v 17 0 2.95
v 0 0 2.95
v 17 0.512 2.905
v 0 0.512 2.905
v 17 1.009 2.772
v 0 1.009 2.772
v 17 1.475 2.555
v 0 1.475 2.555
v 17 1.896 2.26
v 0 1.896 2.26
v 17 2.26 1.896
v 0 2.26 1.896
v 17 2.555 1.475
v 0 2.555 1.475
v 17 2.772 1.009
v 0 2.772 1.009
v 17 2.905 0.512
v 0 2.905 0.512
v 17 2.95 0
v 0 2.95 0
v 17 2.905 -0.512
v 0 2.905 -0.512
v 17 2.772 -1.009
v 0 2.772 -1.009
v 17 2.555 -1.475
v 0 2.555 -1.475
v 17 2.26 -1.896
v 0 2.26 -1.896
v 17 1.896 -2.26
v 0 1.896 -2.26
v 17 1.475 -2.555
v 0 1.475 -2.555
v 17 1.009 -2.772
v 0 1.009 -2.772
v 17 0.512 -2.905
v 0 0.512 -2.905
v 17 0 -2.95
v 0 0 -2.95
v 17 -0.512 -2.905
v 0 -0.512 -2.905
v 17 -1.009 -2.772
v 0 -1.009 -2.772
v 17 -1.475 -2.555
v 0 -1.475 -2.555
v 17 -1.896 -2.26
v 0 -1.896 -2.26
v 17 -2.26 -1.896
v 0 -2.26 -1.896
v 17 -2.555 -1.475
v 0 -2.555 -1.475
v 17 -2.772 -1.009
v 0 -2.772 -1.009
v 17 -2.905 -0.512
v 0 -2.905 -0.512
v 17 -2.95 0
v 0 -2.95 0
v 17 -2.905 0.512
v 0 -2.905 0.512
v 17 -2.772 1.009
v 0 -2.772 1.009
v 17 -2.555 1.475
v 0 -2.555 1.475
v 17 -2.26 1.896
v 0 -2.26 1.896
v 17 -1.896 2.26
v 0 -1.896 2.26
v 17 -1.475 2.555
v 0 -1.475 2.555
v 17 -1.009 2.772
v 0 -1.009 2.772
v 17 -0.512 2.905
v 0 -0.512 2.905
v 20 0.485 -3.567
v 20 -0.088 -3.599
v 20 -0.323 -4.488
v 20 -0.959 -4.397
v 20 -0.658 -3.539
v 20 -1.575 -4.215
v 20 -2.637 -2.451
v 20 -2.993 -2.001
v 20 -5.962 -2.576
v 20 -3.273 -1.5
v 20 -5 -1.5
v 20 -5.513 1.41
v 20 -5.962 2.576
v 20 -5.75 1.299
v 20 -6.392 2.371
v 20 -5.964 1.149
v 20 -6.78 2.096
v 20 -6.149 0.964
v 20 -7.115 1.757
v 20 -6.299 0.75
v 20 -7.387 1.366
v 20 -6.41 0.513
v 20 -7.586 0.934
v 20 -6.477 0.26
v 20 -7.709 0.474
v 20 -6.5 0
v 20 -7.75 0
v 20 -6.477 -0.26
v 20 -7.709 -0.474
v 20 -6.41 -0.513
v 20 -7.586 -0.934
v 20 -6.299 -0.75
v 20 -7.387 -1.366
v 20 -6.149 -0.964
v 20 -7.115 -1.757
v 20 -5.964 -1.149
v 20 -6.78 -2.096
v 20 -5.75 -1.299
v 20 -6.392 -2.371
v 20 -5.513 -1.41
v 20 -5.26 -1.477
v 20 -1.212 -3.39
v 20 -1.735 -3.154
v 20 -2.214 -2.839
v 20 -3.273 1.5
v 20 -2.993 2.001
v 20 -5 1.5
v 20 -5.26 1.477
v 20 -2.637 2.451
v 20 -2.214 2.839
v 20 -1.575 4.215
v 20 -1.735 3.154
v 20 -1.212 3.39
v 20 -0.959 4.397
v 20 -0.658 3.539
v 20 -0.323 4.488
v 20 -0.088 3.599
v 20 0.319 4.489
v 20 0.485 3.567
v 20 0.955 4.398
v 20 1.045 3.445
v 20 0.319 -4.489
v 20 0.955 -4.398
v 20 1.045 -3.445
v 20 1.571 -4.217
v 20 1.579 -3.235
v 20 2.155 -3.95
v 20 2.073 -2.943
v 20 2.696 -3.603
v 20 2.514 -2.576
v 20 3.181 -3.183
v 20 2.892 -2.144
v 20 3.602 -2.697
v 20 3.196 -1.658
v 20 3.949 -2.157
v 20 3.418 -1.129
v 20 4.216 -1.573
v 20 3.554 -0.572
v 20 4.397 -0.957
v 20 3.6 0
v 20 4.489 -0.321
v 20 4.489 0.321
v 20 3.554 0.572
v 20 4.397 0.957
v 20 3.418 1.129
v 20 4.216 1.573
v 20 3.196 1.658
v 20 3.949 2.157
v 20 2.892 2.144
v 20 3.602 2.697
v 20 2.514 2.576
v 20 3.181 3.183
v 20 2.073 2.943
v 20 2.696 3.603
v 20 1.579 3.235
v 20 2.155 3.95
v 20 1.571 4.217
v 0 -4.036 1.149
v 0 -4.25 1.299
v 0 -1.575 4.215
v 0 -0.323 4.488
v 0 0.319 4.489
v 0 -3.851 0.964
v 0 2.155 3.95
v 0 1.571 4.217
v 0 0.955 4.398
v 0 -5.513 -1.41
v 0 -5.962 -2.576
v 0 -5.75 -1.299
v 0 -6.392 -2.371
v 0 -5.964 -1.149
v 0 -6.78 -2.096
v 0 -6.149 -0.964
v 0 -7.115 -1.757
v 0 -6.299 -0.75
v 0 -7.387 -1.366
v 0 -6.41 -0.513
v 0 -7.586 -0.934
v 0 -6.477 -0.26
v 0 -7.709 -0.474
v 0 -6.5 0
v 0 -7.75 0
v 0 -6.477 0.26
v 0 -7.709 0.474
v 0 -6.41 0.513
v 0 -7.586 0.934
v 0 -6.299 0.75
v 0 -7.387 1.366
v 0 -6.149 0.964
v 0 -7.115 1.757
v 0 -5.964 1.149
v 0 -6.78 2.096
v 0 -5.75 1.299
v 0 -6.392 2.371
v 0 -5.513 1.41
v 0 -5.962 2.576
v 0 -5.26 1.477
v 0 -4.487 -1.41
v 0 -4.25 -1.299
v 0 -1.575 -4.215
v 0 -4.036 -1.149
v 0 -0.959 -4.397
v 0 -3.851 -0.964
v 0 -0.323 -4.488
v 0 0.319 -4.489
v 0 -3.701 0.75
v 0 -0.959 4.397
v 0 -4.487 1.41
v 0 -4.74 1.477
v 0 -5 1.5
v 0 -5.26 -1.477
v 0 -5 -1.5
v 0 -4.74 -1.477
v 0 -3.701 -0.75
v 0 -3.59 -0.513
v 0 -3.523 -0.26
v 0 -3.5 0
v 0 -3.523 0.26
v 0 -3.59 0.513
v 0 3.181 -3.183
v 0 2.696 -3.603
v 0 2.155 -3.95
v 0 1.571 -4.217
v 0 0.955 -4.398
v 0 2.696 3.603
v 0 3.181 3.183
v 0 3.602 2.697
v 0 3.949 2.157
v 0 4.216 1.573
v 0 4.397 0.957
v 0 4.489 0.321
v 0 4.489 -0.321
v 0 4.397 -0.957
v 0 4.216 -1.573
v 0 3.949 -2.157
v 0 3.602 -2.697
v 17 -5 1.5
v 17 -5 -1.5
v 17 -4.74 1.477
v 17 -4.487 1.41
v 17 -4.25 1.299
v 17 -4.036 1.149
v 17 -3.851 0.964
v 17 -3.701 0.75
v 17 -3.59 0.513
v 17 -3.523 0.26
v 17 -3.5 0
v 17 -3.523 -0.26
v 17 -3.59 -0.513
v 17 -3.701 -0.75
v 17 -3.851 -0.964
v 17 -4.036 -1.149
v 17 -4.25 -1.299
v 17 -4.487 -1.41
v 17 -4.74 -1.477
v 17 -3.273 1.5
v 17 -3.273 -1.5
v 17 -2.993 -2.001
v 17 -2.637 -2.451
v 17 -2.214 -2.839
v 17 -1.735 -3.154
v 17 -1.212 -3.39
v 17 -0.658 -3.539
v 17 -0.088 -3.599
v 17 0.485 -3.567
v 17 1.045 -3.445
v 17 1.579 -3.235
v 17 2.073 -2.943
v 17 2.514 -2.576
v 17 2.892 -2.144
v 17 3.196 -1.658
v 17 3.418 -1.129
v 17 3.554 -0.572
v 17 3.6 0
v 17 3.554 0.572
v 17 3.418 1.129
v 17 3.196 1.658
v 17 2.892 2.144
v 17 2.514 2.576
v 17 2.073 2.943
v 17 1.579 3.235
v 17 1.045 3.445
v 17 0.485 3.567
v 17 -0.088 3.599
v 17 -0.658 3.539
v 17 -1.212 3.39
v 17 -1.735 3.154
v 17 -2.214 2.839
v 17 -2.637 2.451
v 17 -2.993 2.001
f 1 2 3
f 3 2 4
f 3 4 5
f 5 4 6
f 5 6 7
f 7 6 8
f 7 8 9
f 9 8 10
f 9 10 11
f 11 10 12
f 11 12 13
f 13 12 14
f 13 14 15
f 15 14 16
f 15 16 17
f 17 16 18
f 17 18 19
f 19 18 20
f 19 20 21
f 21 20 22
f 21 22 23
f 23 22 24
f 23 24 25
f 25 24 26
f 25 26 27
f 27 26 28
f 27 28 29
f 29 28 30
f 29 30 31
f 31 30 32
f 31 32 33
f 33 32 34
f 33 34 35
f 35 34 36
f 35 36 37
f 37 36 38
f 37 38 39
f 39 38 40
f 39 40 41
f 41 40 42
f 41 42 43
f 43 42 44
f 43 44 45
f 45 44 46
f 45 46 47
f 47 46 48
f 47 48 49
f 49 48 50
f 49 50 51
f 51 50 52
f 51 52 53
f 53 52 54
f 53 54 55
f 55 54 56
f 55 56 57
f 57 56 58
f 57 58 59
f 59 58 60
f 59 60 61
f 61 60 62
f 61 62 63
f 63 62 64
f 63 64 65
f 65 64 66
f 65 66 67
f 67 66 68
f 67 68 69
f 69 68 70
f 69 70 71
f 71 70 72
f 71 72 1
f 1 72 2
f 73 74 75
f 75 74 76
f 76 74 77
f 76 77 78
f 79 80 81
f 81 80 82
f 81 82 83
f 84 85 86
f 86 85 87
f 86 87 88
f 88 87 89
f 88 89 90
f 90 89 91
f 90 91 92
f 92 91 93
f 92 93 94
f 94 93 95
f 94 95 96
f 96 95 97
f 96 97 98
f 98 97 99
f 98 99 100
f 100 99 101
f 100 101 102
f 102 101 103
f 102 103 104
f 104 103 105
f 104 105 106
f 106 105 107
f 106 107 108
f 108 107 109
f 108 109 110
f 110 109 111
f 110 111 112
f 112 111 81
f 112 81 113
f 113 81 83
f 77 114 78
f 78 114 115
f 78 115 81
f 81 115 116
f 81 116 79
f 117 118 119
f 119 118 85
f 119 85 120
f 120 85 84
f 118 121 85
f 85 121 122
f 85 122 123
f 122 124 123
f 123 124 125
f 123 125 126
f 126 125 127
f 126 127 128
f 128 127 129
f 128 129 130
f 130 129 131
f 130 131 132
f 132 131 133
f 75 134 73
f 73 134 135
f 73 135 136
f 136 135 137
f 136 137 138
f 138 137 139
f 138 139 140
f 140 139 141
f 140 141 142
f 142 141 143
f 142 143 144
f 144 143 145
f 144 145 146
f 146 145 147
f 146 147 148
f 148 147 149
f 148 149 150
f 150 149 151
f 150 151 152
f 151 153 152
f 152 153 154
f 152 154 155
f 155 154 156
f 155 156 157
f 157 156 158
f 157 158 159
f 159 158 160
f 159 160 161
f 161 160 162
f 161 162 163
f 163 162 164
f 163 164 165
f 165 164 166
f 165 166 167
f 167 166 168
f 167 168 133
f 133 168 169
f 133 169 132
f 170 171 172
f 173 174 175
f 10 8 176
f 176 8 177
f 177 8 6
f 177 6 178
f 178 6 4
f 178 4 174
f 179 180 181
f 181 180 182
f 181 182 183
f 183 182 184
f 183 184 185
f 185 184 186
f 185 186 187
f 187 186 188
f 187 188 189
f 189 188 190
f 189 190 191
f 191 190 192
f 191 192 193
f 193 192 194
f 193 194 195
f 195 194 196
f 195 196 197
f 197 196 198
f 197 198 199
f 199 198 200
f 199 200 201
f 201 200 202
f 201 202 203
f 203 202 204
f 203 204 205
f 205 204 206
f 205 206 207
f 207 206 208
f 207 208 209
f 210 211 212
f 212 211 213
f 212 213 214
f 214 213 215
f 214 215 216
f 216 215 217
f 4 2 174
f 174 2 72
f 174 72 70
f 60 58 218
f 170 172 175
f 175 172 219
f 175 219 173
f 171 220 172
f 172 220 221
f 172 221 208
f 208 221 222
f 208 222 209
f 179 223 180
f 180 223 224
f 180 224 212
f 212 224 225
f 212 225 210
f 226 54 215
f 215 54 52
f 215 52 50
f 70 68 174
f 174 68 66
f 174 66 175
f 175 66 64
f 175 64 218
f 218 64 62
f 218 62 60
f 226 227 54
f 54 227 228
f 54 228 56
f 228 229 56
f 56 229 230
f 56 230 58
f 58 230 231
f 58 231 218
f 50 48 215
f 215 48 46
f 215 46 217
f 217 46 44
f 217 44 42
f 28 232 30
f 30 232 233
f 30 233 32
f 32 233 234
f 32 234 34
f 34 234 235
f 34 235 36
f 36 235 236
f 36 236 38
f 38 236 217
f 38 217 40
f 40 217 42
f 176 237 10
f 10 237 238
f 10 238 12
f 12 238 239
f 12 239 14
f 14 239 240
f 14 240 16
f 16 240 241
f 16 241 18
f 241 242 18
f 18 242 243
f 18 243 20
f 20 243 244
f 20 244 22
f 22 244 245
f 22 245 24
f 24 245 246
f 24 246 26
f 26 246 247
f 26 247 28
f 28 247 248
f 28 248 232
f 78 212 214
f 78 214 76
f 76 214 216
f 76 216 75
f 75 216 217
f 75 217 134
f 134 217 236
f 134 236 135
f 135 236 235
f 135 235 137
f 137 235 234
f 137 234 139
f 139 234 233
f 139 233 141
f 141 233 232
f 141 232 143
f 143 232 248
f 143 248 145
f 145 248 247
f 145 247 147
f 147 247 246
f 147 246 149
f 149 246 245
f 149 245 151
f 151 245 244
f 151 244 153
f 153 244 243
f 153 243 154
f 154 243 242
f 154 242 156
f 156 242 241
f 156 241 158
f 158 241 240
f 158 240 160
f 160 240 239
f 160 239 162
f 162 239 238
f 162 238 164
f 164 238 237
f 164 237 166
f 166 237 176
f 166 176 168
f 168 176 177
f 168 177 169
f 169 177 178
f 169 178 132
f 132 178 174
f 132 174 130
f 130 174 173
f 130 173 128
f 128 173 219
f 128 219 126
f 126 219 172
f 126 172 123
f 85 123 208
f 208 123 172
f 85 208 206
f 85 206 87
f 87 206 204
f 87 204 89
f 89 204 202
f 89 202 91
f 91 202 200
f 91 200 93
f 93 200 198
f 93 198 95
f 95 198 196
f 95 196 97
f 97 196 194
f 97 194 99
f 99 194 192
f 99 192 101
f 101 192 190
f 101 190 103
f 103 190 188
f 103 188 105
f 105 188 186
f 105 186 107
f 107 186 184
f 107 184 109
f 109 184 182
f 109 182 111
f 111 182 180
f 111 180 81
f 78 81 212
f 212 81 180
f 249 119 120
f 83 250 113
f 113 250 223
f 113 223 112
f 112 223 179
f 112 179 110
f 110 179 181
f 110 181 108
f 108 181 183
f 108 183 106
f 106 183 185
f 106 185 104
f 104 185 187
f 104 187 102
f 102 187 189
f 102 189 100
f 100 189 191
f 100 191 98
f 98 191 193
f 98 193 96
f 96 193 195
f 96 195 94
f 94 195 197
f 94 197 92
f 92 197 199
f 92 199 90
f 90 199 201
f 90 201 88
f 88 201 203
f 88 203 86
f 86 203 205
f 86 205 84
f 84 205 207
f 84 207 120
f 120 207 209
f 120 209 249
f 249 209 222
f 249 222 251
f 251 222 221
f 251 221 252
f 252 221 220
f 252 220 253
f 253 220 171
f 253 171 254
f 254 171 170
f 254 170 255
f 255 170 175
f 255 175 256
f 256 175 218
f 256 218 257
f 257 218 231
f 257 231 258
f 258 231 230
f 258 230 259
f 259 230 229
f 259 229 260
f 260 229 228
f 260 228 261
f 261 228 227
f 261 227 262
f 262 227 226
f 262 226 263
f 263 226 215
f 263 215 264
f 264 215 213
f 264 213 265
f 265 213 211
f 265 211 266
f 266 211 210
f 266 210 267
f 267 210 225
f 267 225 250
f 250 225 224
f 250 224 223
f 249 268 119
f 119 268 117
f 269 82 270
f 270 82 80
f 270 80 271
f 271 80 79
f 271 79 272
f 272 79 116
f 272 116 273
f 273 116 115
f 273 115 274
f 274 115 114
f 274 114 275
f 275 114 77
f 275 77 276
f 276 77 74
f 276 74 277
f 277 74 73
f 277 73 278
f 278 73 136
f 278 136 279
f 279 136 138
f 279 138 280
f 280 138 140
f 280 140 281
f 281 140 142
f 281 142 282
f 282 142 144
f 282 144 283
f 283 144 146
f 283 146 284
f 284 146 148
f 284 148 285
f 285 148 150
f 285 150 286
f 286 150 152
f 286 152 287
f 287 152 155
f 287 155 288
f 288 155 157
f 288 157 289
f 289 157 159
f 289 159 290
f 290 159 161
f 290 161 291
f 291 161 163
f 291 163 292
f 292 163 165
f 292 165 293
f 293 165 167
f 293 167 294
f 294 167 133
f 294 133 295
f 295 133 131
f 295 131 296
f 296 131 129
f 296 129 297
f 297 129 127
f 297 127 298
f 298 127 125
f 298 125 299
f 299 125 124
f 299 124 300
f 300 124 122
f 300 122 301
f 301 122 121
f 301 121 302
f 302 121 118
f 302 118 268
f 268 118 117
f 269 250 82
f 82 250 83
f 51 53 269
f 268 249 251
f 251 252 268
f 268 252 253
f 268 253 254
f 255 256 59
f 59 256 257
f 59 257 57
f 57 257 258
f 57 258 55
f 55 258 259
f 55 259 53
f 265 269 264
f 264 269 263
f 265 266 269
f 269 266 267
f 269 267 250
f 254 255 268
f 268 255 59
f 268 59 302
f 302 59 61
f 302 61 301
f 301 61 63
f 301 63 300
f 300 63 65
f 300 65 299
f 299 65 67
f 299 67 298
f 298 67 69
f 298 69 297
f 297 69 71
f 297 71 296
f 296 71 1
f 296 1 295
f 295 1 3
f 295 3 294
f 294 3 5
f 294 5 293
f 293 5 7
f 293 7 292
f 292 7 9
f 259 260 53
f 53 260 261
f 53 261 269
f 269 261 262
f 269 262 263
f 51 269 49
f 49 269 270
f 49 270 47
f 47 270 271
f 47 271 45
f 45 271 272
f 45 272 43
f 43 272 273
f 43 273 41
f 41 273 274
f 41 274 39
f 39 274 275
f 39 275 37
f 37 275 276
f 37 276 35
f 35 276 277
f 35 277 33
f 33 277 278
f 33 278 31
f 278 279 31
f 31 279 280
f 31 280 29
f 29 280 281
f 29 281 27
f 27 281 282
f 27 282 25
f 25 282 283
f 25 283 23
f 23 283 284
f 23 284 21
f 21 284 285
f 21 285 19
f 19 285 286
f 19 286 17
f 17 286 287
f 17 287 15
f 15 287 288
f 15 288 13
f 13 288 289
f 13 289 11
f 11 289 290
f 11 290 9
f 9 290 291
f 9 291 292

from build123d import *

# Parameters (mm, degrees)
SKETCH_1_R          = 2.95
SKETCH_1_R_2        = 1.5
EXTRUDE_1_DEPTH     = 20
CUT_EXTRUDE_1_DEPTH = 3


with BuildPart() as part:
    # Эскиз1 → Бобышка-Вытянуть1 (new body)
    with BuildSketch(Plane(origin=(0, 0, 0), x_dir=(0, 0, -1), z_dir=(1, 0, 0))):
        with BuildLine():
            Line((-4.215373649, -1.575), (-2.576061674, -5.9625))
            ThreePointArc((-2.576061674, -5.9625), (0, -7.75), (2.576061674, -5.9625))
            Line((2.576061674, -5.9625), (4.215373649, -1.575))
            ThreePointArc((4.215373649, -1.575), (0, 4.5), (-4.215373649, -1.575))
        make_face()
        Circle(SKETCH_1_R, mode=Mode.SUBTRACT)
        with Locations((0, -5)):
            Circle(SKETCH_1_R_2, mode=Mode.SUBTRACT)
    extrude(amount=EXTRUDE_1_DEPTH)

    # Эскиз2 → Вырез-Вытянуть1 (cut)
    with BuildSketch(Plane(origin=(20, 0, 0), x_dir=(0, 0, -1), z_dir=(1, 0, 0))):
        with BuildLine():
            Line((-1.5, -5), (1.5, -5))
            Line((1.5, -5), (1.5, -3.272613634))
            ThreePointArc((1.5, -3.272613634), (0, 3.6), (-1.5, -3.272613634))
            Line((-1.5, -3.272613634), (-1.5, -5))
        make_face()
    extrude(amount=-CUT_EXTRUDE_1_DEPTH, mode=Mode.SUBTRACT)


solid = part.part
